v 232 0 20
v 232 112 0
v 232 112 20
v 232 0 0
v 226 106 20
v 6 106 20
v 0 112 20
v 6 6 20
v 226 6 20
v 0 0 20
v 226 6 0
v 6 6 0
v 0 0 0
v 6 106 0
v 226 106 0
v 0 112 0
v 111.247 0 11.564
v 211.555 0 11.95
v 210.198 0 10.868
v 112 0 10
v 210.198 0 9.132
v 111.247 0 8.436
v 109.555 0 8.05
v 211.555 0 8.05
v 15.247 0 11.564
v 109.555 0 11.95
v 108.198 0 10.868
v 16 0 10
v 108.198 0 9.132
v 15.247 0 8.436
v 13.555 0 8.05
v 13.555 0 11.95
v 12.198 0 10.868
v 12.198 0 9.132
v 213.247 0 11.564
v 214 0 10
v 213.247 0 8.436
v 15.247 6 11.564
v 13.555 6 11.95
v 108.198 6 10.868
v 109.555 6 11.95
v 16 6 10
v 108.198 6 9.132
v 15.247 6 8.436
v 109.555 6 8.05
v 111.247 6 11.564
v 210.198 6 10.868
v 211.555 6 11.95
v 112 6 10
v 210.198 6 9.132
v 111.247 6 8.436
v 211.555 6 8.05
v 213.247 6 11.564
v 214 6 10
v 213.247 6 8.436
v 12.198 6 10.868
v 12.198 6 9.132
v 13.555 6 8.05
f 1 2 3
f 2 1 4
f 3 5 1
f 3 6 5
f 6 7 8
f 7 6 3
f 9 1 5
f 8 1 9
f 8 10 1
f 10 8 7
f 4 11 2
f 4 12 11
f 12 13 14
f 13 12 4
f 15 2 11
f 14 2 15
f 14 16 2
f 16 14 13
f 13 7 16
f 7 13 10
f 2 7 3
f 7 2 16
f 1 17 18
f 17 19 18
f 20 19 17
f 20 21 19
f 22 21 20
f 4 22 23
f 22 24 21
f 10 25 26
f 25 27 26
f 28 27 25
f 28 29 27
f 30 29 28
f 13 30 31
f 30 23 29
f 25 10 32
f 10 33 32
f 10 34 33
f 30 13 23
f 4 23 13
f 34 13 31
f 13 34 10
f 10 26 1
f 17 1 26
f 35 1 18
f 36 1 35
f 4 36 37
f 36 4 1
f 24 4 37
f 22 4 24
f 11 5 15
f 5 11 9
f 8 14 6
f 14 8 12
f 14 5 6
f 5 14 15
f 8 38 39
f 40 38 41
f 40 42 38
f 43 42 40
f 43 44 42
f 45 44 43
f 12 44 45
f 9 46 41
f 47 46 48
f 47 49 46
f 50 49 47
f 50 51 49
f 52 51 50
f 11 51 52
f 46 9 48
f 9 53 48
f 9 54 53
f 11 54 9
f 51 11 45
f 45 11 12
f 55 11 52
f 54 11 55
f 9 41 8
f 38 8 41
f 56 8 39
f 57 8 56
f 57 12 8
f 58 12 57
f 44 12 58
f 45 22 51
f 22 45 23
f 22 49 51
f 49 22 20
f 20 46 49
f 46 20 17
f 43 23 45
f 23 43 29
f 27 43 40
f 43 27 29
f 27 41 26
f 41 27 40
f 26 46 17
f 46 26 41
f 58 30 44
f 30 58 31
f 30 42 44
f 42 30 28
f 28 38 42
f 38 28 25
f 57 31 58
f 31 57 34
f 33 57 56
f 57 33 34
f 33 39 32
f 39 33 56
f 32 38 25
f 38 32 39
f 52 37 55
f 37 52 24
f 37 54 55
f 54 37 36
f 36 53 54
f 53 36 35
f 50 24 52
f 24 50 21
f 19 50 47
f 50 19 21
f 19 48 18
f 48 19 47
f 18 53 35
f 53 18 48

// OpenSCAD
thick=6;
xx=220;
yy=100;
zz=20;
hole=4;


module holder() {
    difference() {
        cube([xx+2*thick,yy+2*thick,zz]);
        translate([thick,thick,0]) cube([xx,yy,zz]);
        #translate([xx/2,0,zz/2]) rotate([-90,0,0]) cylinder(thick,d=hole);
        #translate([hole+10,0,zz/2]) rotate([-90,0,0]) cylinder(thick,d=hole);
        #translate([xx-(hole+10)+thick,0,zz/2]) rotate([-90,0,0]) cylinder(thick,d=hole);
    }
}


holder();
